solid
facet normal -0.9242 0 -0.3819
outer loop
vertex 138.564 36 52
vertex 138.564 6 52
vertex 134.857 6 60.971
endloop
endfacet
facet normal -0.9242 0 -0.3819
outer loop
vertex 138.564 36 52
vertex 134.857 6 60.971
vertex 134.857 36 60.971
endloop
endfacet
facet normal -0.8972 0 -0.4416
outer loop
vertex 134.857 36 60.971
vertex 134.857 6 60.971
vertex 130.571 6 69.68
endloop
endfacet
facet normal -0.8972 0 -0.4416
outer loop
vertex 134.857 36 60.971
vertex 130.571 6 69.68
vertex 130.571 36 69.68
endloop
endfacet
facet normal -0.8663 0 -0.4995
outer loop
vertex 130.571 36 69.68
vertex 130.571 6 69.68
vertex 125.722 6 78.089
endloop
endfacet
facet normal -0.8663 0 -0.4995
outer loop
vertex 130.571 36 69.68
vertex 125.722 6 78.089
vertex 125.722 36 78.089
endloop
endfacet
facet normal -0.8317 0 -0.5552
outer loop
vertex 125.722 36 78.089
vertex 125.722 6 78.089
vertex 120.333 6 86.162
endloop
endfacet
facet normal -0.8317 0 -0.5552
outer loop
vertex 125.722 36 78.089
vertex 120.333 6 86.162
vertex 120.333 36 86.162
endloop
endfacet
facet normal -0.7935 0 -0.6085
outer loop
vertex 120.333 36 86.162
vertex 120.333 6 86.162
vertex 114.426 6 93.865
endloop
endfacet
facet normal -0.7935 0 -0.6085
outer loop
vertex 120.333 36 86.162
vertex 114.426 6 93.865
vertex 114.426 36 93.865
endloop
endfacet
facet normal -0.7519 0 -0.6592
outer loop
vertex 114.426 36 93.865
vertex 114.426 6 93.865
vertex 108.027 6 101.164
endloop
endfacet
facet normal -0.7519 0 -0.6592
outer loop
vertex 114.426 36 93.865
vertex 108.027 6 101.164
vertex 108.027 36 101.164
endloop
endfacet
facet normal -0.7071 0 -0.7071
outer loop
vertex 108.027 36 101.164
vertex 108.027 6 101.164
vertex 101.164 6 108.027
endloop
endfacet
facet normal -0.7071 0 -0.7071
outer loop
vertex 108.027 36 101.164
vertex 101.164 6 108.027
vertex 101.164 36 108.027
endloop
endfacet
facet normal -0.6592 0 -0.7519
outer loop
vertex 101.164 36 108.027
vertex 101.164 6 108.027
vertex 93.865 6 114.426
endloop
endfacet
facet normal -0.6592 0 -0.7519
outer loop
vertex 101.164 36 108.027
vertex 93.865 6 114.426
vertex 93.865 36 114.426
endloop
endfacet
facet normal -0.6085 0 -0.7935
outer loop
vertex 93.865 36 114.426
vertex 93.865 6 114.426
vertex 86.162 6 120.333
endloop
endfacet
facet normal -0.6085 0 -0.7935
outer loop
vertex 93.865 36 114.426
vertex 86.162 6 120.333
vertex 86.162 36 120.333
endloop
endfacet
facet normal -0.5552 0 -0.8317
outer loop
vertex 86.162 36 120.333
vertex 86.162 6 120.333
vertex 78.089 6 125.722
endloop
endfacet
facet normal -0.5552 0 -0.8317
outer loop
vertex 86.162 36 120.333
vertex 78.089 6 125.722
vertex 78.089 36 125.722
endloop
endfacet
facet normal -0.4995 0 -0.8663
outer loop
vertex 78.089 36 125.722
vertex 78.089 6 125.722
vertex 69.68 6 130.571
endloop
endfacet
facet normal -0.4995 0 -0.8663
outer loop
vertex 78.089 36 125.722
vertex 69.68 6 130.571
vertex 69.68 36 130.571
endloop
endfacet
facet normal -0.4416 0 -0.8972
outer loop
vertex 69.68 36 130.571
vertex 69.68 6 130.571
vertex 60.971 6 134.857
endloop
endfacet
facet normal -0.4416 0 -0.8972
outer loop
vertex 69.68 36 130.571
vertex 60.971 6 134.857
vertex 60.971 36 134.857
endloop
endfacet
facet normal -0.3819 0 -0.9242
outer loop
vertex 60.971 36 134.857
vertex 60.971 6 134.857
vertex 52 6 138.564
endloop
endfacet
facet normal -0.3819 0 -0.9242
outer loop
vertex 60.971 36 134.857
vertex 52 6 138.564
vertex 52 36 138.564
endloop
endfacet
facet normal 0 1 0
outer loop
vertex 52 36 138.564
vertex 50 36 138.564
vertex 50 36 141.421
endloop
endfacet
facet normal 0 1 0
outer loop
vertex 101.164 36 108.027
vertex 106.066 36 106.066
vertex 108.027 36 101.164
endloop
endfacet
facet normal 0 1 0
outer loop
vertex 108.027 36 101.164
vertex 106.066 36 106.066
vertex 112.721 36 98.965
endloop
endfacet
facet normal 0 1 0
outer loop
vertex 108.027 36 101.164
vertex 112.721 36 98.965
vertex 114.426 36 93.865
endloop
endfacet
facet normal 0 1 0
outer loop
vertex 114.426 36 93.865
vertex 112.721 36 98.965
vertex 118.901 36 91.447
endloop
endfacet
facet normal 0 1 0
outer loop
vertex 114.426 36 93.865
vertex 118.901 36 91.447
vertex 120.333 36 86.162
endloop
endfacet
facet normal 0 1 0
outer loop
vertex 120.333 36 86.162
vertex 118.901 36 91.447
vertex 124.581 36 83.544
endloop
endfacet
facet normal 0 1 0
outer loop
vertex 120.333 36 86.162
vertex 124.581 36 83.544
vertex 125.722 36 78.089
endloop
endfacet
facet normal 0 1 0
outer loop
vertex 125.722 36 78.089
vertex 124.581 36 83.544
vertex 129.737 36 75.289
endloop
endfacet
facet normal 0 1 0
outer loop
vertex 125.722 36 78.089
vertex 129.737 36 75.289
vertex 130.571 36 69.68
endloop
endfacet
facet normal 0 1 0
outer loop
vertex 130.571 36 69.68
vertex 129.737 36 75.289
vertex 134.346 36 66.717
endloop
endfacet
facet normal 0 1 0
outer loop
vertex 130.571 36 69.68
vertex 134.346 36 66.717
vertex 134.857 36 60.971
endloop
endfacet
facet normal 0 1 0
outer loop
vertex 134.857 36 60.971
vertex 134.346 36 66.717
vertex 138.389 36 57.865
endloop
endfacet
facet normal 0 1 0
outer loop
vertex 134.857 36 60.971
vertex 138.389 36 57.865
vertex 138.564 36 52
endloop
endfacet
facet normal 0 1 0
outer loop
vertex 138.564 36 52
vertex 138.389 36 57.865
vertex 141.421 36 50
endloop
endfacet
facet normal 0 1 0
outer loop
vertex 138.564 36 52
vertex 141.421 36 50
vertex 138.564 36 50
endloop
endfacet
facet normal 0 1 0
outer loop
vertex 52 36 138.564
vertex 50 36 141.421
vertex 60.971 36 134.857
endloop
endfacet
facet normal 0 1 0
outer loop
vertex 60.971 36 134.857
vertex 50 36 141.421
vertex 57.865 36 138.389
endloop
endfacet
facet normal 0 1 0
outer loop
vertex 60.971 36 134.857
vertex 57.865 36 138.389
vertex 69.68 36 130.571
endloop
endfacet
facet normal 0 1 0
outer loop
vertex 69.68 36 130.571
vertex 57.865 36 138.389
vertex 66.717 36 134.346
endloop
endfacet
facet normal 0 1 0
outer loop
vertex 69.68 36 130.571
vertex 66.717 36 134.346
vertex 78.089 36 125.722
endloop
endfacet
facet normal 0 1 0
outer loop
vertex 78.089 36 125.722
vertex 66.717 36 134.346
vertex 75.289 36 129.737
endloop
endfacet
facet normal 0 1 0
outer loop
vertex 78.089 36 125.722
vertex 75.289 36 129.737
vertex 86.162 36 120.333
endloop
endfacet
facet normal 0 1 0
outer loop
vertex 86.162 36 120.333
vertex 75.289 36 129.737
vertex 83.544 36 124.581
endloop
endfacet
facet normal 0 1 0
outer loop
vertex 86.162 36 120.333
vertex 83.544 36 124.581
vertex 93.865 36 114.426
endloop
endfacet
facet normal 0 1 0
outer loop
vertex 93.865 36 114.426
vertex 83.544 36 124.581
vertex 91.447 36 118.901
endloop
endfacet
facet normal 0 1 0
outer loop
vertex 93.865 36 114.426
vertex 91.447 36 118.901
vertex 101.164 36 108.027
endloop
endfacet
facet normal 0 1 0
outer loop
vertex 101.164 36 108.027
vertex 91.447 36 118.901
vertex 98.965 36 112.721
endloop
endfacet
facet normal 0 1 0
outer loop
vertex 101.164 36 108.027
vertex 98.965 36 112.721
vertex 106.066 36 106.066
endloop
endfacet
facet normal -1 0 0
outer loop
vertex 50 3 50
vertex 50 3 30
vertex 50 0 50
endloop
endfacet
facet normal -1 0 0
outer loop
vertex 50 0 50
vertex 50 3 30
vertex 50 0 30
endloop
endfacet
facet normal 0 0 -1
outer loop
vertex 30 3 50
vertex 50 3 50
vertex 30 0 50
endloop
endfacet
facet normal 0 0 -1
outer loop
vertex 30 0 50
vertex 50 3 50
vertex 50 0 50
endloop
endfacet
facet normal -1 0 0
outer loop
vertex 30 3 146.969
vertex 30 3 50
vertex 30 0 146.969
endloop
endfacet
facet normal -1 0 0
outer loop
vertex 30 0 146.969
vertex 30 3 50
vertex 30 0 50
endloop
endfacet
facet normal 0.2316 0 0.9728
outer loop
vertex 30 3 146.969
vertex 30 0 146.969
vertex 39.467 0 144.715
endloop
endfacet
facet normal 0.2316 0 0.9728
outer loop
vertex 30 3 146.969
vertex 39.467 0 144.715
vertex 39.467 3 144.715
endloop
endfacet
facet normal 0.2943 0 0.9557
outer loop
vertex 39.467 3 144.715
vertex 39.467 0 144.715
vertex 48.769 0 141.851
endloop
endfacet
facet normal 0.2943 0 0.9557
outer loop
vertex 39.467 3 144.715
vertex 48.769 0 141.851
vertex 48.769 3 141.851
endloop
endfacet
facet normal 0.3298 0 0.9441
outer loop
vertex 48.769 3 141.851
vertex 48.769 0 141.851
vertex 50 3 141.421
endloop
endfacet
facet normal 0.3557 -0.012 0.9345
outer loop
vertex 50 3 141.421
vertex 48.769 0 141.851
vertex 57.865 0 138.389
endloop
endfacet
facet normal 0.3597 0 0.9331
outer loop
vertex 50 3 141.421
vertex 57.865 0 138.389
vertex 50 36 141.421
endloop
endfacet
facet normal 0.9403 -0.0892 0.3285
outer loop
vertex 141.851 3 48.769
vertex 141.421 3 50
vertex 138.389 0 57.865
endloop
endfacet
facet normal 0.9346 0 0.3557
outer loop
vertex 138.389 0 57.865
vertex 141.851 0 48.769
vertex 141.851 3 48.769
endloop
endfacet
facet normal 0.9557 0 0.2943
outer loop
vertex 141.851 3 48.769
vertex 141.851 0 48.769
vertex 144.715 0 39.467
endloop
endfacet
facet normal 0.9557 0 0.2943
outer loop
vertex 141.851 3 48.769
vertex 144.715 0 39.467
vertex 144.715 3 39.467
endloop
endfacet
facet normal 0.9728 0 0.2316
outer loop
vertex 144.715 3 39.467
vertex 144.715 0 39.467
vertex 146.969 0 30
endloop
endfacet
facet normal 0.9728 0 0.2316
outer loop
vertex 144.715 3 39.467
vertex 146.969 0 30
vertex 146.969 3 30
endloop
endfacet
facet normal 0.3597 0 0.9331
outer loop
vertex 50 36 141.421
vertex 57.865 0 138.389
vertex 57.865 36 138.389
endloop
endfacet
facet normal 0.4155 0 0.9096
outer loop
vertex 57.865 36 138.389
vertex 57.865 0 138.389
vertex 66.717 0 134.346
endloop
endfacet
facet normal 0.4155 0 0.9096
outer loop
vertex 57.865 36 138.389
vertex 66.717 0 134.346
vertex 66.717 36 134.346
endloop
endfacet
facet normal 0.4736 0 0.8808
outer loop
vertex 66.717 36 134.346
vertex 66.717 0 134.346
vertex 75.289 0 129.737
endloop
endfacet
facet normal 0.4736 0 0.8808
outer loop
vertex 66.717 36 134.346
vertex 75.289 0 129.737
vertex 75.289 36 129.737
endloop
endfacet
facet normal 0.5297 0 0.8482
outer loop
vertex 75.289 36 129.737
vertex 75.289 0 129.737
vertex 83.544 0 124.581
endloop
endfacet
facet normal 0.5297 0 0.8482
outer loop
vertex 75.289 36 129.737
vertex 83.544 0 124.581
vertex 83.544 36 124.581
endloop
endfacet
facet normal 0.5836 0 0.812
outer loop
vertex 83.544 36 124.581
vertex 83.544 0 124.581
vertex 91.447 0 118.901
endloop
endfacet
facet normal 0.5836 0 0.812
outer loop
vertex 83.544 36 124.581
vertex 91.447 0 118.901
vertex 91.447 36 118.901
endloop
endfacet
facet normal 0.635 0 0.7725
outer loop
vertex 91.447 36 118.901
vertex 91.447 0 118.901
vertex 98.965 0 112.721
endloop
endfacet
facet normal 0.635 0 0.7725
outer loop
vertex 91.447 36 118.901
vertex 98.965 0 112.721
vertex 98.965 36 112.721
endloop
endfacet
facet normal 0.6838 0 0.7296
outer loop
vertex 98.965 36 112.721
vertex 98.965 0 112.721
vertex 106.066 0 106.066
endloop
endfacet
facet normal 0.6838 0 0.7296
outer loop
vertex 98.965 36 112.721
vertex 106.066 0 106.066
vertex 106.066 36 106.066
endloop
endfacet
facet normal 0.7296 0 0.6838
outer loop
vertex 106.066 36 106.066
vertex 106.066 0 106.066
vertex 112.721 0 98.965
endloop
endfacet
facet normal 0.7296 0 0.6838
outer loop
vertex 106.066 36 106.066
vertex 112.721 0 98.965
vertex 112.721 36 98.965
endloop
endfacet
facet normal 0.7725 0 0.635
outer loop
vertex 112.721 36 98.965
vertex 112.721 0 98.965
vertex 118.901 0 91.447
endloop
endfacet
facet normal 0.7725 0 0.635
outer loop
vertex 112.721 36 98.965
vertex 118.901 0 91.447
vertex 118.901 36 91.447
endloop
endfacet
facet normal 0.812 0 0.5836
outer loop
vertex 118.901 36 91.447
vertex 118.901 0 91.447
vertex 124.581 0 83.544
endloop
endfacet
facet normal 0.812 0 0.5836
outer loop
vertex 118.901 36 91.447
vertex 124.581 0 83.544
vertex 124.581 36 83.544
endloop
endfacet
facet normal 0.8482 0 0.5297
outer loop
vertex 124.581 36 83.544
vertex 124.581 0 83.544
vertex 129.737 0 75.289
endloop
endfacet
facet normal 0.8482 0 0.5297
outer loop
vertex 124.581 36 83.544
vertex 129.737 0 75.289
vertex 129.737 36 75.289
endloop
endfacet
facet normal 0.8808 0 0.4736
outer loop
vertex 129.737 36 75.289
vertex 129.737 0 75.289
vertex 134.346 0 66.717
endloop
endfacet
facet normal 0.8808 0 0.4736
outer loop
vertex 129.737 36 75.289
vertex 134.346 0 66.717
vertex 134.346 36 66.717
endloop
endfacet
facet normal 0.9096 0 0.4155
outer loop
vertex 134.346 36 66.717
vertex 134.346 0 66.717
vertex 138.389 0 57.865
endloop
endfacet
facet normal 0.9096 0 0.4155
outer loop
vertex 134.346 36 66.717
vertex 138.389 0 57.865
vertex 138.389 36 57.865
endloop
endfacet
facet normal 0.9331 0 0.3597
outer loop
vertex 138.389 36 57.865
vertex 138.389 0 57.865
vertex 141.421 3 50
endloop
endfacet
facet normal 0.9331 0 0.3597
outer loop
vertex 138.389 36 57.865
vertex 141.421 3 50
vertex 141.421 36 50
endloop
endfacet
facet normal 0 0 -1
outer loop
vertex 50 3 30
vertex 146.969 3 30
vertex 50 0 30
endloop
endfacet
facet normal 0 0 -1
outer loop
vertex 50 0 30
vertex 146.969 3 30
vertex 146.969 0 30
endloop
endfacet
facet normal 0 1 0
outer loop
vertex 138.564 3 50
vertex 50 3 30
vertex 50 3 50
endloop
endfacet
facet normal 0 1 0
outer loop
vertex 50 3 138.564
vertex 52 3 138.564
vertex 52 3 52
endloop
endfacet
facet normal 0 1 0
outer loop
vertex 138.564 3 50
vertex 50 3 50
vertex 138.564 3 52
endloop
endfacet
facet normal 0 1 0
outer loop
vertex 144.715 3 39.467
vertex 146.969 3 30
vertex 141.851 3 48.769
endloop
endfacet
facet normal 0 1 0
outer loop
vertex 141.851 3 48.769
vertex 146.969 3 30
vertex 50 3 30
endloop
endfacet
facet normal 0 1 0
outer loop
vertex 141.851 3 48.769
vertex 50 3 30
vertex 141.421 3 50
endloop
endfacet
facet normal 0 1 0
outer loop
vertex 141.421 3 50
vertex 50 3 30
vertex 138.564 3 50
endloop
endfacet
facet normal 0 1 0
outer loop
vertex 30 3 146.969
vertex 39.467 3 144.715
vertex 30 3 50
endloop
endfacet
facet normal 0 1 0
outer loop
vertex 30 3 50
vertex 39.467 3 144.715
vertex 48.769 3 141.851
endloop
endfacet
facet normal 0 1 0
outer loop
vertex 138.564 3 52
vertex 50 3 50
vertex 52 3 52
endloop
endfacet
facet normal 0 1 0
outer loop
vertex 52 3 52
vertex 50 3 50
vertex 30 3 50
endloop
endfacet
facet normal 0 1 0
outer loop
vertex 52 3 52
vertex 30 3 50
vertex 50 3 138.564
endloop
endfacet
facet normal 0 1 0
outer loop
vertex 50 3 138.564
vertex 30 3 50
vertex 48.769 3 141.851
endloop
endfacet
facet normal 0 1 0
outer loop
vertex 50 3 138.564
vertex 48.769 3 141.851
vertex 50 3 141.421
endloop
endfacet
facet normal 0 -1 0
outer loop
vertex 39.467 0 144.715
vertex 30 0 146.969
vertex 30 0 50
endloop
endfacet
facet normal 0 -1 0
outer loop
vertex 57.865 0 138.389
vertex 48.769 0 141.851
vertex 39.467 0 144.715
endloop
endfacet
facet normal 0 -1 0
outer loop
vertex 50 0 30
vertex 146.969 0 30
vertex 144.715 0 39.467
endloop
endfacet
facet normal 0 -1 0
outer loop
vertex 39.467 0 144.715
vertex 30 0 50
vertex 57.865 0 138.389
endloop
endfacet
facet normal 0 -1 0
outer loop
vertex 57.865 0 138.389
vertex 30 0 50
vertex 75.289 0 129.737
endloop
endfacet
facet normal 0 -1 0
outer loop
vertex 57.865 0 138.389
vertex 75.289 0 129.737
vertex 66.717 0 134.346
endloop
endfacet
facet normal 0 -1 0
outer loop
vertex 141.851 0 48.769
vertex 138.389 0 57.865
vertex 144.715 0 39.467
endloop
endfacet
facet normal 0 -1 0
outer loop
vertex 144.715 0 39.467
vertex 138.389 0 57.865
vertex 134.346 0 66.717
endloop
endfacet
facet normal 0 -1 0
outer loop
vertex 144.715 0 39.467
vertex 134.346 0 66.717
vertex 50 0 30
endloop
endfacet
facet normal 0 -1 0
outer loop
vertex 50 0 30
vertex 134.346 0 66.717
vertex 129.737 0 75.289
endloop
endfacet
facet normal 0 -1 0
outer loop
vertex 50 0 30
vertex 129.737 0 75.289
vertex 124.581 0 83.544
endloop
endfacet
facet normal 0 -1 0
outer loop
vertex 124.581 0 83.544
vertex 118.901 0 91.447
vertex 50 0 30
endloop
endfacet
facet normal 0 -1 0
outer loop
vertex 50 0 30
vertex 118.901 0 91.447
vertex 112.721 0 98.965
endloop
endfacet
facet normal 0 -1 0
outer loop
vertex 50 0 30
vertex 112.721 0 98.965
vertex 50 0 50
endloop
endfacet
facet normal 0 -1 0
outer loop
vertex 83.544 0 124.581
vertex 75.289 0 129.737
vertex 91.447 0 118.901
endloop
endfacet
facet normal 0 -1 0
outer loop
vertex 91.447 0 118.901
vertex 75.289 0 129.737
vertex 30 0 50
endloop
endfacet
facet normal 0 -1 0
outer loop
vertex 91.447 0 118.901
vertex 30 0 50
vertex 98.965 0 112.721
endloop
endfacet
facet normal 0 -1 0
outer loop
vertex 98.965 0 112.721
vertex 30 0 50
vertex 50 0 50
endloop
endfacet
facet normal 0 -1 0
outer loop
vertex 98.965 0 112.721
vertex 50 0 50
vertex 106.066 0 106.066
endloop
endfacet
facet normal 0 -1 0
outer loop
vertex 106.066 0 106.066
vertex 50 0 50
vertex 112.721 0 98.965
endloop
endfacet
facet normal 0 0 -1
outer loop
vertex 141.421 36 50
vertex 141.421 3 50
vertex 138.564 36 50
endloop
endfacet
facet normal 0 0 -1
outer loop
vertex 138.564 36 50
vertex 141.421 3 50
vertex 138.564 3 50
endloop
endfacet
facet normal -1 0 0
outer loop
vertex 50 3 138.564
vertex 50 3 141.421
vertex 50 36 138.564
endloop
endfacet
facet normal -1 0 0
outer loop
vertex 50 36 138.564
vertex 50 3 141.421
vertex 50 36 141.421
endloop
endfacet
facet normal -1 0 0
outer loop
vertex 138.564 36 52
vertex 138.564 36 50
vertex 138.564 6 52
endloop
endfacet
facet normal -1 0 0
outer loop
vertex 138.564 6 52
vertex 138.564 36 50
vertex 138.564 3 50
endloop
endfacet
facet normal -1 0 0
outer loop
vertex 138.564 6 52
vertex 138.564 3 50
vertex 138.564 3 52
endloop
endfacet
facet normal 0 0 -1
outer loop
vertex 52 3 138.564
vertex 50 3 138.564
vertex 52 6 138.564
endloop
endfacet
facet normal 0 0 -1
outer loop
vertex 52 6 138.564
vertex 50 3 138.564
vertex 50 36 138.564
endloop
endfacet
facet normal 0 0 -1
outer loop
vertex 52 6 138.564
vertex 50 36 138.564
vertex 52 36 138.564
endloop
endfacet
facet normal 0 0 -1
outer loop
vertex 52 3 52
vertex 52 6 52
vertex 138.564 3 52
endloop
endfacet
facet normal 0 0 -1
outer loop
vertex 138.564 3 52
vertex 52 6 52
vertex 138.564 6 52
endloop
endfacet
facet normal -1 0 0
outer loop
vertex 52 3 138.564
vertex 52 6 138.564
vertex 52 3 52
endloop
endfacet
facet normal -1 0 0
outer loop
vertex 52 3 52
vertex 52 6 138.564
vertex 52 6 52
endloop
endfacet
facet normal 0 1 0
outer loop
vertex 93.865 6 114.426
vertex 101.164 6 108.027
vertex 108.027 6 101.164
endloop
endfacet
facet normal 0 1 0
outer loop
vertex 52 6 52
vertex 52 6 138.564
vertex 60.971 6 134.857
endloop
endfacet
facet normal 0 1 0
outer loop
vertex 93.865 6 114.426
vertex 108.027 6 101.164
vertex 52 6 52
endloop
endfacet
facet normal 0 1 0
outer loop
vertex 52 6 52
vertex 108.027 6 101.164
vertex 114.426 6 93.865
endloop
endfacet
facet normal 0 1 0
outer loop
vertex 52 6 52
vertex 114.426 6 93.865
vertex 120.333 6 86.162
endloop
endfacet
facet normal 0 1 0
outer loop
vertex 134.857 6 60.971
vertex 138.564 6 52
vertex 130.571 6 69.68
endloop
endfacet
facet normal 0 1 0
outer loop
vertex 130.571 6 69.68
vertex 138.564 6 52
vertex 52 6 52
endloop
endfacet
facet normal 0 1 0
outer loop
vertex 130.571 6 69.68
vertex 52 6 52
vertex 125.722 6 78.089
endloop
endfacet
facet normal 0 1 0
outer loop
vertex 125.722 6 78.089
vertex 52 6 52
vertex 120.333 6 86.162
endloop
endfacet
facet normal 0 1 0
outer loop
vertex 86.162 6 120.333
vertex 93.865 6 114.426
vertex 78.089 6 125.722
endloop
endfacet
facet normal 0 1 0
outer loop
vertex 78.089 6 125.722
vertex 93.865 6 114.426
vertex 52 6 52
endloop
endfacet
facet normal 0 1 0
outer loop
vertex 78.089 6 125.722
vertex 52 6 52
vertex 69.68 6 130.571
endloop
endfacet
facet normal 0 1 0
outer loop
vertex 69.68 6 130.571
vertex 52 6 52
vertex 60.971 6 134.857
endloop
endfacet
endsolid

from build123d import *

# Parameters (mm, degrees)
BOSS_EXTRUDE1_DEPTH = 3
BOSS_EXTRUDE2_DEPTH = 33
SHELL2_START        = 2
SHELL2_DEPTH        = 34
SKETCH9_W           = 86.564064606
SKETCH9_H           = 33
SKETCH9_W_2         = 2
CUT_EXTRUDE3_DEPTH  = 3
SKETCH10_W          = 88.564064606
SKETCH10_H          = 33
CUT_EXTRUDE4_DEPTH  = 3
BOSS_EXTRUDE9_DEPTH = 6


# Read off the part's stored shape, not the designer's step: Shell2
with BuildPart() as part:
    # Sketch1 → Boss-Extrude1 (new body)
    with BuildSketch(Plane(origin=(0, 0, 0), x_dir=(1, 0, 0), z_dir=(0, 1, 0))):
        with BuildLine():
            Line((141.421356237, -50), (50, -50))
            Line((50, -50), (50, -141.421356237))
            ThreePointArc((50, -141.421356237), (106.066017178, -106.066017178), (141.421356237, -50))
        make_face()
        with BuildLine():
            Line((50, -50), (30, -50))
            Line((30, -50), (30, -146.969384567))
            ThreePointArc((30, -146.969384567), (40.096074055, -144.541706249), (50, -141.421356237))
            Line((50, -141.421356237), (50, -50))
        make_face()
        with BuildLine():
            Line((50, -30), (50, -50))
            Line((50, -50), (141.421356237, -50))
            ThreePointArc((141.421356237, -50), (144.541706249, -40.096074055), (146.969384567, -30))
            Line((146.969384567, -30), (50, -30))
        make_face()
    extrude(amount=BOSS_EXTRUDE1_DEPTH)

    # Sketch2 → Boss-Extrude2 (add)
    with BuildSketch(Plane(origin=(0, 3, 0), x_dir=(-1, 0, 0), z_dir=(0, 1, 0))):
        with BuildLine():
            Line((-141.421356237, 50), (-50, 50))
            Line((-50, 50), (-50, 141.421356237))
            ThreePointArc((-50, 141.421356237), (-106.066017178, 106.066017178), (-141.421356237, 50))
        make_face()
    extrude(amount=BOSS_EXTRUDE2_DEPTH)

    # Shell2 outline → Shell2 (cut)
    with BuildSketch(Plane(origin=(0, 0, 0), x_dir=(1, 0, 0), z_dir=(0, 1, 0)).offset(SHELL2_START)):
        with BuildLine():
            ThreePointArc((52, -138.564064606), (104.651803616, -104.651803616), (138.564064606, -52))
            Line((138.564064606, -52), (52, -52))
            Line((52, -52), (52, -138.564064606))
        make_face()
    extrude(amount=SHELL2_DEPTH, mode=Mode.SUBTRACT)

    # Sketch9 → Cut-Extrude3 (cut)
    with BuildSketch(Plane.XY.offset(52)):
        with Locations((95.282032303, 19.5)):
            Rectangle(SKETCH9_W, SKETCH9_H)
        with Locations((51, 19.5)):
            Rectangle(SKETCH9_W_2, SKETCH9_H)
    extrude(amount=-CUT_EXTRUDE3_DEPTH, mode=Mode.SUBTRACT)

    # Sketch10 → Cut-Extrude4 (cut)
    with BuildSketch(Plane(origin=(52, 0, 0), x_dir=(0, 0, -1), z_dir=(1, 0, 0))):
        with Locations((-94.282032303, 19.5)):
            Rectangle(SKETCH10_W, SKETCH10_H)
    extrude(amount=-CUT_EXTRUDE4_DEPTH, mode=Mode.SUBTRACT)

    # Sketch11 → Boss-Extrude9 (add)
    with BuildSketch(Plane.XZ):
        with BuildLine():
            ThreePointArc((52, 138.564064606), (104.651803616, 104.651803616), (138.564064606, 52))
            Line((138.564064606, 52), (52, 52))
            Line((52, 52), (52, 138.564064606))
        make_face()
    extrude(amount=-BOSS_EXTRUDE9_DEPTH)


solid = part.part
